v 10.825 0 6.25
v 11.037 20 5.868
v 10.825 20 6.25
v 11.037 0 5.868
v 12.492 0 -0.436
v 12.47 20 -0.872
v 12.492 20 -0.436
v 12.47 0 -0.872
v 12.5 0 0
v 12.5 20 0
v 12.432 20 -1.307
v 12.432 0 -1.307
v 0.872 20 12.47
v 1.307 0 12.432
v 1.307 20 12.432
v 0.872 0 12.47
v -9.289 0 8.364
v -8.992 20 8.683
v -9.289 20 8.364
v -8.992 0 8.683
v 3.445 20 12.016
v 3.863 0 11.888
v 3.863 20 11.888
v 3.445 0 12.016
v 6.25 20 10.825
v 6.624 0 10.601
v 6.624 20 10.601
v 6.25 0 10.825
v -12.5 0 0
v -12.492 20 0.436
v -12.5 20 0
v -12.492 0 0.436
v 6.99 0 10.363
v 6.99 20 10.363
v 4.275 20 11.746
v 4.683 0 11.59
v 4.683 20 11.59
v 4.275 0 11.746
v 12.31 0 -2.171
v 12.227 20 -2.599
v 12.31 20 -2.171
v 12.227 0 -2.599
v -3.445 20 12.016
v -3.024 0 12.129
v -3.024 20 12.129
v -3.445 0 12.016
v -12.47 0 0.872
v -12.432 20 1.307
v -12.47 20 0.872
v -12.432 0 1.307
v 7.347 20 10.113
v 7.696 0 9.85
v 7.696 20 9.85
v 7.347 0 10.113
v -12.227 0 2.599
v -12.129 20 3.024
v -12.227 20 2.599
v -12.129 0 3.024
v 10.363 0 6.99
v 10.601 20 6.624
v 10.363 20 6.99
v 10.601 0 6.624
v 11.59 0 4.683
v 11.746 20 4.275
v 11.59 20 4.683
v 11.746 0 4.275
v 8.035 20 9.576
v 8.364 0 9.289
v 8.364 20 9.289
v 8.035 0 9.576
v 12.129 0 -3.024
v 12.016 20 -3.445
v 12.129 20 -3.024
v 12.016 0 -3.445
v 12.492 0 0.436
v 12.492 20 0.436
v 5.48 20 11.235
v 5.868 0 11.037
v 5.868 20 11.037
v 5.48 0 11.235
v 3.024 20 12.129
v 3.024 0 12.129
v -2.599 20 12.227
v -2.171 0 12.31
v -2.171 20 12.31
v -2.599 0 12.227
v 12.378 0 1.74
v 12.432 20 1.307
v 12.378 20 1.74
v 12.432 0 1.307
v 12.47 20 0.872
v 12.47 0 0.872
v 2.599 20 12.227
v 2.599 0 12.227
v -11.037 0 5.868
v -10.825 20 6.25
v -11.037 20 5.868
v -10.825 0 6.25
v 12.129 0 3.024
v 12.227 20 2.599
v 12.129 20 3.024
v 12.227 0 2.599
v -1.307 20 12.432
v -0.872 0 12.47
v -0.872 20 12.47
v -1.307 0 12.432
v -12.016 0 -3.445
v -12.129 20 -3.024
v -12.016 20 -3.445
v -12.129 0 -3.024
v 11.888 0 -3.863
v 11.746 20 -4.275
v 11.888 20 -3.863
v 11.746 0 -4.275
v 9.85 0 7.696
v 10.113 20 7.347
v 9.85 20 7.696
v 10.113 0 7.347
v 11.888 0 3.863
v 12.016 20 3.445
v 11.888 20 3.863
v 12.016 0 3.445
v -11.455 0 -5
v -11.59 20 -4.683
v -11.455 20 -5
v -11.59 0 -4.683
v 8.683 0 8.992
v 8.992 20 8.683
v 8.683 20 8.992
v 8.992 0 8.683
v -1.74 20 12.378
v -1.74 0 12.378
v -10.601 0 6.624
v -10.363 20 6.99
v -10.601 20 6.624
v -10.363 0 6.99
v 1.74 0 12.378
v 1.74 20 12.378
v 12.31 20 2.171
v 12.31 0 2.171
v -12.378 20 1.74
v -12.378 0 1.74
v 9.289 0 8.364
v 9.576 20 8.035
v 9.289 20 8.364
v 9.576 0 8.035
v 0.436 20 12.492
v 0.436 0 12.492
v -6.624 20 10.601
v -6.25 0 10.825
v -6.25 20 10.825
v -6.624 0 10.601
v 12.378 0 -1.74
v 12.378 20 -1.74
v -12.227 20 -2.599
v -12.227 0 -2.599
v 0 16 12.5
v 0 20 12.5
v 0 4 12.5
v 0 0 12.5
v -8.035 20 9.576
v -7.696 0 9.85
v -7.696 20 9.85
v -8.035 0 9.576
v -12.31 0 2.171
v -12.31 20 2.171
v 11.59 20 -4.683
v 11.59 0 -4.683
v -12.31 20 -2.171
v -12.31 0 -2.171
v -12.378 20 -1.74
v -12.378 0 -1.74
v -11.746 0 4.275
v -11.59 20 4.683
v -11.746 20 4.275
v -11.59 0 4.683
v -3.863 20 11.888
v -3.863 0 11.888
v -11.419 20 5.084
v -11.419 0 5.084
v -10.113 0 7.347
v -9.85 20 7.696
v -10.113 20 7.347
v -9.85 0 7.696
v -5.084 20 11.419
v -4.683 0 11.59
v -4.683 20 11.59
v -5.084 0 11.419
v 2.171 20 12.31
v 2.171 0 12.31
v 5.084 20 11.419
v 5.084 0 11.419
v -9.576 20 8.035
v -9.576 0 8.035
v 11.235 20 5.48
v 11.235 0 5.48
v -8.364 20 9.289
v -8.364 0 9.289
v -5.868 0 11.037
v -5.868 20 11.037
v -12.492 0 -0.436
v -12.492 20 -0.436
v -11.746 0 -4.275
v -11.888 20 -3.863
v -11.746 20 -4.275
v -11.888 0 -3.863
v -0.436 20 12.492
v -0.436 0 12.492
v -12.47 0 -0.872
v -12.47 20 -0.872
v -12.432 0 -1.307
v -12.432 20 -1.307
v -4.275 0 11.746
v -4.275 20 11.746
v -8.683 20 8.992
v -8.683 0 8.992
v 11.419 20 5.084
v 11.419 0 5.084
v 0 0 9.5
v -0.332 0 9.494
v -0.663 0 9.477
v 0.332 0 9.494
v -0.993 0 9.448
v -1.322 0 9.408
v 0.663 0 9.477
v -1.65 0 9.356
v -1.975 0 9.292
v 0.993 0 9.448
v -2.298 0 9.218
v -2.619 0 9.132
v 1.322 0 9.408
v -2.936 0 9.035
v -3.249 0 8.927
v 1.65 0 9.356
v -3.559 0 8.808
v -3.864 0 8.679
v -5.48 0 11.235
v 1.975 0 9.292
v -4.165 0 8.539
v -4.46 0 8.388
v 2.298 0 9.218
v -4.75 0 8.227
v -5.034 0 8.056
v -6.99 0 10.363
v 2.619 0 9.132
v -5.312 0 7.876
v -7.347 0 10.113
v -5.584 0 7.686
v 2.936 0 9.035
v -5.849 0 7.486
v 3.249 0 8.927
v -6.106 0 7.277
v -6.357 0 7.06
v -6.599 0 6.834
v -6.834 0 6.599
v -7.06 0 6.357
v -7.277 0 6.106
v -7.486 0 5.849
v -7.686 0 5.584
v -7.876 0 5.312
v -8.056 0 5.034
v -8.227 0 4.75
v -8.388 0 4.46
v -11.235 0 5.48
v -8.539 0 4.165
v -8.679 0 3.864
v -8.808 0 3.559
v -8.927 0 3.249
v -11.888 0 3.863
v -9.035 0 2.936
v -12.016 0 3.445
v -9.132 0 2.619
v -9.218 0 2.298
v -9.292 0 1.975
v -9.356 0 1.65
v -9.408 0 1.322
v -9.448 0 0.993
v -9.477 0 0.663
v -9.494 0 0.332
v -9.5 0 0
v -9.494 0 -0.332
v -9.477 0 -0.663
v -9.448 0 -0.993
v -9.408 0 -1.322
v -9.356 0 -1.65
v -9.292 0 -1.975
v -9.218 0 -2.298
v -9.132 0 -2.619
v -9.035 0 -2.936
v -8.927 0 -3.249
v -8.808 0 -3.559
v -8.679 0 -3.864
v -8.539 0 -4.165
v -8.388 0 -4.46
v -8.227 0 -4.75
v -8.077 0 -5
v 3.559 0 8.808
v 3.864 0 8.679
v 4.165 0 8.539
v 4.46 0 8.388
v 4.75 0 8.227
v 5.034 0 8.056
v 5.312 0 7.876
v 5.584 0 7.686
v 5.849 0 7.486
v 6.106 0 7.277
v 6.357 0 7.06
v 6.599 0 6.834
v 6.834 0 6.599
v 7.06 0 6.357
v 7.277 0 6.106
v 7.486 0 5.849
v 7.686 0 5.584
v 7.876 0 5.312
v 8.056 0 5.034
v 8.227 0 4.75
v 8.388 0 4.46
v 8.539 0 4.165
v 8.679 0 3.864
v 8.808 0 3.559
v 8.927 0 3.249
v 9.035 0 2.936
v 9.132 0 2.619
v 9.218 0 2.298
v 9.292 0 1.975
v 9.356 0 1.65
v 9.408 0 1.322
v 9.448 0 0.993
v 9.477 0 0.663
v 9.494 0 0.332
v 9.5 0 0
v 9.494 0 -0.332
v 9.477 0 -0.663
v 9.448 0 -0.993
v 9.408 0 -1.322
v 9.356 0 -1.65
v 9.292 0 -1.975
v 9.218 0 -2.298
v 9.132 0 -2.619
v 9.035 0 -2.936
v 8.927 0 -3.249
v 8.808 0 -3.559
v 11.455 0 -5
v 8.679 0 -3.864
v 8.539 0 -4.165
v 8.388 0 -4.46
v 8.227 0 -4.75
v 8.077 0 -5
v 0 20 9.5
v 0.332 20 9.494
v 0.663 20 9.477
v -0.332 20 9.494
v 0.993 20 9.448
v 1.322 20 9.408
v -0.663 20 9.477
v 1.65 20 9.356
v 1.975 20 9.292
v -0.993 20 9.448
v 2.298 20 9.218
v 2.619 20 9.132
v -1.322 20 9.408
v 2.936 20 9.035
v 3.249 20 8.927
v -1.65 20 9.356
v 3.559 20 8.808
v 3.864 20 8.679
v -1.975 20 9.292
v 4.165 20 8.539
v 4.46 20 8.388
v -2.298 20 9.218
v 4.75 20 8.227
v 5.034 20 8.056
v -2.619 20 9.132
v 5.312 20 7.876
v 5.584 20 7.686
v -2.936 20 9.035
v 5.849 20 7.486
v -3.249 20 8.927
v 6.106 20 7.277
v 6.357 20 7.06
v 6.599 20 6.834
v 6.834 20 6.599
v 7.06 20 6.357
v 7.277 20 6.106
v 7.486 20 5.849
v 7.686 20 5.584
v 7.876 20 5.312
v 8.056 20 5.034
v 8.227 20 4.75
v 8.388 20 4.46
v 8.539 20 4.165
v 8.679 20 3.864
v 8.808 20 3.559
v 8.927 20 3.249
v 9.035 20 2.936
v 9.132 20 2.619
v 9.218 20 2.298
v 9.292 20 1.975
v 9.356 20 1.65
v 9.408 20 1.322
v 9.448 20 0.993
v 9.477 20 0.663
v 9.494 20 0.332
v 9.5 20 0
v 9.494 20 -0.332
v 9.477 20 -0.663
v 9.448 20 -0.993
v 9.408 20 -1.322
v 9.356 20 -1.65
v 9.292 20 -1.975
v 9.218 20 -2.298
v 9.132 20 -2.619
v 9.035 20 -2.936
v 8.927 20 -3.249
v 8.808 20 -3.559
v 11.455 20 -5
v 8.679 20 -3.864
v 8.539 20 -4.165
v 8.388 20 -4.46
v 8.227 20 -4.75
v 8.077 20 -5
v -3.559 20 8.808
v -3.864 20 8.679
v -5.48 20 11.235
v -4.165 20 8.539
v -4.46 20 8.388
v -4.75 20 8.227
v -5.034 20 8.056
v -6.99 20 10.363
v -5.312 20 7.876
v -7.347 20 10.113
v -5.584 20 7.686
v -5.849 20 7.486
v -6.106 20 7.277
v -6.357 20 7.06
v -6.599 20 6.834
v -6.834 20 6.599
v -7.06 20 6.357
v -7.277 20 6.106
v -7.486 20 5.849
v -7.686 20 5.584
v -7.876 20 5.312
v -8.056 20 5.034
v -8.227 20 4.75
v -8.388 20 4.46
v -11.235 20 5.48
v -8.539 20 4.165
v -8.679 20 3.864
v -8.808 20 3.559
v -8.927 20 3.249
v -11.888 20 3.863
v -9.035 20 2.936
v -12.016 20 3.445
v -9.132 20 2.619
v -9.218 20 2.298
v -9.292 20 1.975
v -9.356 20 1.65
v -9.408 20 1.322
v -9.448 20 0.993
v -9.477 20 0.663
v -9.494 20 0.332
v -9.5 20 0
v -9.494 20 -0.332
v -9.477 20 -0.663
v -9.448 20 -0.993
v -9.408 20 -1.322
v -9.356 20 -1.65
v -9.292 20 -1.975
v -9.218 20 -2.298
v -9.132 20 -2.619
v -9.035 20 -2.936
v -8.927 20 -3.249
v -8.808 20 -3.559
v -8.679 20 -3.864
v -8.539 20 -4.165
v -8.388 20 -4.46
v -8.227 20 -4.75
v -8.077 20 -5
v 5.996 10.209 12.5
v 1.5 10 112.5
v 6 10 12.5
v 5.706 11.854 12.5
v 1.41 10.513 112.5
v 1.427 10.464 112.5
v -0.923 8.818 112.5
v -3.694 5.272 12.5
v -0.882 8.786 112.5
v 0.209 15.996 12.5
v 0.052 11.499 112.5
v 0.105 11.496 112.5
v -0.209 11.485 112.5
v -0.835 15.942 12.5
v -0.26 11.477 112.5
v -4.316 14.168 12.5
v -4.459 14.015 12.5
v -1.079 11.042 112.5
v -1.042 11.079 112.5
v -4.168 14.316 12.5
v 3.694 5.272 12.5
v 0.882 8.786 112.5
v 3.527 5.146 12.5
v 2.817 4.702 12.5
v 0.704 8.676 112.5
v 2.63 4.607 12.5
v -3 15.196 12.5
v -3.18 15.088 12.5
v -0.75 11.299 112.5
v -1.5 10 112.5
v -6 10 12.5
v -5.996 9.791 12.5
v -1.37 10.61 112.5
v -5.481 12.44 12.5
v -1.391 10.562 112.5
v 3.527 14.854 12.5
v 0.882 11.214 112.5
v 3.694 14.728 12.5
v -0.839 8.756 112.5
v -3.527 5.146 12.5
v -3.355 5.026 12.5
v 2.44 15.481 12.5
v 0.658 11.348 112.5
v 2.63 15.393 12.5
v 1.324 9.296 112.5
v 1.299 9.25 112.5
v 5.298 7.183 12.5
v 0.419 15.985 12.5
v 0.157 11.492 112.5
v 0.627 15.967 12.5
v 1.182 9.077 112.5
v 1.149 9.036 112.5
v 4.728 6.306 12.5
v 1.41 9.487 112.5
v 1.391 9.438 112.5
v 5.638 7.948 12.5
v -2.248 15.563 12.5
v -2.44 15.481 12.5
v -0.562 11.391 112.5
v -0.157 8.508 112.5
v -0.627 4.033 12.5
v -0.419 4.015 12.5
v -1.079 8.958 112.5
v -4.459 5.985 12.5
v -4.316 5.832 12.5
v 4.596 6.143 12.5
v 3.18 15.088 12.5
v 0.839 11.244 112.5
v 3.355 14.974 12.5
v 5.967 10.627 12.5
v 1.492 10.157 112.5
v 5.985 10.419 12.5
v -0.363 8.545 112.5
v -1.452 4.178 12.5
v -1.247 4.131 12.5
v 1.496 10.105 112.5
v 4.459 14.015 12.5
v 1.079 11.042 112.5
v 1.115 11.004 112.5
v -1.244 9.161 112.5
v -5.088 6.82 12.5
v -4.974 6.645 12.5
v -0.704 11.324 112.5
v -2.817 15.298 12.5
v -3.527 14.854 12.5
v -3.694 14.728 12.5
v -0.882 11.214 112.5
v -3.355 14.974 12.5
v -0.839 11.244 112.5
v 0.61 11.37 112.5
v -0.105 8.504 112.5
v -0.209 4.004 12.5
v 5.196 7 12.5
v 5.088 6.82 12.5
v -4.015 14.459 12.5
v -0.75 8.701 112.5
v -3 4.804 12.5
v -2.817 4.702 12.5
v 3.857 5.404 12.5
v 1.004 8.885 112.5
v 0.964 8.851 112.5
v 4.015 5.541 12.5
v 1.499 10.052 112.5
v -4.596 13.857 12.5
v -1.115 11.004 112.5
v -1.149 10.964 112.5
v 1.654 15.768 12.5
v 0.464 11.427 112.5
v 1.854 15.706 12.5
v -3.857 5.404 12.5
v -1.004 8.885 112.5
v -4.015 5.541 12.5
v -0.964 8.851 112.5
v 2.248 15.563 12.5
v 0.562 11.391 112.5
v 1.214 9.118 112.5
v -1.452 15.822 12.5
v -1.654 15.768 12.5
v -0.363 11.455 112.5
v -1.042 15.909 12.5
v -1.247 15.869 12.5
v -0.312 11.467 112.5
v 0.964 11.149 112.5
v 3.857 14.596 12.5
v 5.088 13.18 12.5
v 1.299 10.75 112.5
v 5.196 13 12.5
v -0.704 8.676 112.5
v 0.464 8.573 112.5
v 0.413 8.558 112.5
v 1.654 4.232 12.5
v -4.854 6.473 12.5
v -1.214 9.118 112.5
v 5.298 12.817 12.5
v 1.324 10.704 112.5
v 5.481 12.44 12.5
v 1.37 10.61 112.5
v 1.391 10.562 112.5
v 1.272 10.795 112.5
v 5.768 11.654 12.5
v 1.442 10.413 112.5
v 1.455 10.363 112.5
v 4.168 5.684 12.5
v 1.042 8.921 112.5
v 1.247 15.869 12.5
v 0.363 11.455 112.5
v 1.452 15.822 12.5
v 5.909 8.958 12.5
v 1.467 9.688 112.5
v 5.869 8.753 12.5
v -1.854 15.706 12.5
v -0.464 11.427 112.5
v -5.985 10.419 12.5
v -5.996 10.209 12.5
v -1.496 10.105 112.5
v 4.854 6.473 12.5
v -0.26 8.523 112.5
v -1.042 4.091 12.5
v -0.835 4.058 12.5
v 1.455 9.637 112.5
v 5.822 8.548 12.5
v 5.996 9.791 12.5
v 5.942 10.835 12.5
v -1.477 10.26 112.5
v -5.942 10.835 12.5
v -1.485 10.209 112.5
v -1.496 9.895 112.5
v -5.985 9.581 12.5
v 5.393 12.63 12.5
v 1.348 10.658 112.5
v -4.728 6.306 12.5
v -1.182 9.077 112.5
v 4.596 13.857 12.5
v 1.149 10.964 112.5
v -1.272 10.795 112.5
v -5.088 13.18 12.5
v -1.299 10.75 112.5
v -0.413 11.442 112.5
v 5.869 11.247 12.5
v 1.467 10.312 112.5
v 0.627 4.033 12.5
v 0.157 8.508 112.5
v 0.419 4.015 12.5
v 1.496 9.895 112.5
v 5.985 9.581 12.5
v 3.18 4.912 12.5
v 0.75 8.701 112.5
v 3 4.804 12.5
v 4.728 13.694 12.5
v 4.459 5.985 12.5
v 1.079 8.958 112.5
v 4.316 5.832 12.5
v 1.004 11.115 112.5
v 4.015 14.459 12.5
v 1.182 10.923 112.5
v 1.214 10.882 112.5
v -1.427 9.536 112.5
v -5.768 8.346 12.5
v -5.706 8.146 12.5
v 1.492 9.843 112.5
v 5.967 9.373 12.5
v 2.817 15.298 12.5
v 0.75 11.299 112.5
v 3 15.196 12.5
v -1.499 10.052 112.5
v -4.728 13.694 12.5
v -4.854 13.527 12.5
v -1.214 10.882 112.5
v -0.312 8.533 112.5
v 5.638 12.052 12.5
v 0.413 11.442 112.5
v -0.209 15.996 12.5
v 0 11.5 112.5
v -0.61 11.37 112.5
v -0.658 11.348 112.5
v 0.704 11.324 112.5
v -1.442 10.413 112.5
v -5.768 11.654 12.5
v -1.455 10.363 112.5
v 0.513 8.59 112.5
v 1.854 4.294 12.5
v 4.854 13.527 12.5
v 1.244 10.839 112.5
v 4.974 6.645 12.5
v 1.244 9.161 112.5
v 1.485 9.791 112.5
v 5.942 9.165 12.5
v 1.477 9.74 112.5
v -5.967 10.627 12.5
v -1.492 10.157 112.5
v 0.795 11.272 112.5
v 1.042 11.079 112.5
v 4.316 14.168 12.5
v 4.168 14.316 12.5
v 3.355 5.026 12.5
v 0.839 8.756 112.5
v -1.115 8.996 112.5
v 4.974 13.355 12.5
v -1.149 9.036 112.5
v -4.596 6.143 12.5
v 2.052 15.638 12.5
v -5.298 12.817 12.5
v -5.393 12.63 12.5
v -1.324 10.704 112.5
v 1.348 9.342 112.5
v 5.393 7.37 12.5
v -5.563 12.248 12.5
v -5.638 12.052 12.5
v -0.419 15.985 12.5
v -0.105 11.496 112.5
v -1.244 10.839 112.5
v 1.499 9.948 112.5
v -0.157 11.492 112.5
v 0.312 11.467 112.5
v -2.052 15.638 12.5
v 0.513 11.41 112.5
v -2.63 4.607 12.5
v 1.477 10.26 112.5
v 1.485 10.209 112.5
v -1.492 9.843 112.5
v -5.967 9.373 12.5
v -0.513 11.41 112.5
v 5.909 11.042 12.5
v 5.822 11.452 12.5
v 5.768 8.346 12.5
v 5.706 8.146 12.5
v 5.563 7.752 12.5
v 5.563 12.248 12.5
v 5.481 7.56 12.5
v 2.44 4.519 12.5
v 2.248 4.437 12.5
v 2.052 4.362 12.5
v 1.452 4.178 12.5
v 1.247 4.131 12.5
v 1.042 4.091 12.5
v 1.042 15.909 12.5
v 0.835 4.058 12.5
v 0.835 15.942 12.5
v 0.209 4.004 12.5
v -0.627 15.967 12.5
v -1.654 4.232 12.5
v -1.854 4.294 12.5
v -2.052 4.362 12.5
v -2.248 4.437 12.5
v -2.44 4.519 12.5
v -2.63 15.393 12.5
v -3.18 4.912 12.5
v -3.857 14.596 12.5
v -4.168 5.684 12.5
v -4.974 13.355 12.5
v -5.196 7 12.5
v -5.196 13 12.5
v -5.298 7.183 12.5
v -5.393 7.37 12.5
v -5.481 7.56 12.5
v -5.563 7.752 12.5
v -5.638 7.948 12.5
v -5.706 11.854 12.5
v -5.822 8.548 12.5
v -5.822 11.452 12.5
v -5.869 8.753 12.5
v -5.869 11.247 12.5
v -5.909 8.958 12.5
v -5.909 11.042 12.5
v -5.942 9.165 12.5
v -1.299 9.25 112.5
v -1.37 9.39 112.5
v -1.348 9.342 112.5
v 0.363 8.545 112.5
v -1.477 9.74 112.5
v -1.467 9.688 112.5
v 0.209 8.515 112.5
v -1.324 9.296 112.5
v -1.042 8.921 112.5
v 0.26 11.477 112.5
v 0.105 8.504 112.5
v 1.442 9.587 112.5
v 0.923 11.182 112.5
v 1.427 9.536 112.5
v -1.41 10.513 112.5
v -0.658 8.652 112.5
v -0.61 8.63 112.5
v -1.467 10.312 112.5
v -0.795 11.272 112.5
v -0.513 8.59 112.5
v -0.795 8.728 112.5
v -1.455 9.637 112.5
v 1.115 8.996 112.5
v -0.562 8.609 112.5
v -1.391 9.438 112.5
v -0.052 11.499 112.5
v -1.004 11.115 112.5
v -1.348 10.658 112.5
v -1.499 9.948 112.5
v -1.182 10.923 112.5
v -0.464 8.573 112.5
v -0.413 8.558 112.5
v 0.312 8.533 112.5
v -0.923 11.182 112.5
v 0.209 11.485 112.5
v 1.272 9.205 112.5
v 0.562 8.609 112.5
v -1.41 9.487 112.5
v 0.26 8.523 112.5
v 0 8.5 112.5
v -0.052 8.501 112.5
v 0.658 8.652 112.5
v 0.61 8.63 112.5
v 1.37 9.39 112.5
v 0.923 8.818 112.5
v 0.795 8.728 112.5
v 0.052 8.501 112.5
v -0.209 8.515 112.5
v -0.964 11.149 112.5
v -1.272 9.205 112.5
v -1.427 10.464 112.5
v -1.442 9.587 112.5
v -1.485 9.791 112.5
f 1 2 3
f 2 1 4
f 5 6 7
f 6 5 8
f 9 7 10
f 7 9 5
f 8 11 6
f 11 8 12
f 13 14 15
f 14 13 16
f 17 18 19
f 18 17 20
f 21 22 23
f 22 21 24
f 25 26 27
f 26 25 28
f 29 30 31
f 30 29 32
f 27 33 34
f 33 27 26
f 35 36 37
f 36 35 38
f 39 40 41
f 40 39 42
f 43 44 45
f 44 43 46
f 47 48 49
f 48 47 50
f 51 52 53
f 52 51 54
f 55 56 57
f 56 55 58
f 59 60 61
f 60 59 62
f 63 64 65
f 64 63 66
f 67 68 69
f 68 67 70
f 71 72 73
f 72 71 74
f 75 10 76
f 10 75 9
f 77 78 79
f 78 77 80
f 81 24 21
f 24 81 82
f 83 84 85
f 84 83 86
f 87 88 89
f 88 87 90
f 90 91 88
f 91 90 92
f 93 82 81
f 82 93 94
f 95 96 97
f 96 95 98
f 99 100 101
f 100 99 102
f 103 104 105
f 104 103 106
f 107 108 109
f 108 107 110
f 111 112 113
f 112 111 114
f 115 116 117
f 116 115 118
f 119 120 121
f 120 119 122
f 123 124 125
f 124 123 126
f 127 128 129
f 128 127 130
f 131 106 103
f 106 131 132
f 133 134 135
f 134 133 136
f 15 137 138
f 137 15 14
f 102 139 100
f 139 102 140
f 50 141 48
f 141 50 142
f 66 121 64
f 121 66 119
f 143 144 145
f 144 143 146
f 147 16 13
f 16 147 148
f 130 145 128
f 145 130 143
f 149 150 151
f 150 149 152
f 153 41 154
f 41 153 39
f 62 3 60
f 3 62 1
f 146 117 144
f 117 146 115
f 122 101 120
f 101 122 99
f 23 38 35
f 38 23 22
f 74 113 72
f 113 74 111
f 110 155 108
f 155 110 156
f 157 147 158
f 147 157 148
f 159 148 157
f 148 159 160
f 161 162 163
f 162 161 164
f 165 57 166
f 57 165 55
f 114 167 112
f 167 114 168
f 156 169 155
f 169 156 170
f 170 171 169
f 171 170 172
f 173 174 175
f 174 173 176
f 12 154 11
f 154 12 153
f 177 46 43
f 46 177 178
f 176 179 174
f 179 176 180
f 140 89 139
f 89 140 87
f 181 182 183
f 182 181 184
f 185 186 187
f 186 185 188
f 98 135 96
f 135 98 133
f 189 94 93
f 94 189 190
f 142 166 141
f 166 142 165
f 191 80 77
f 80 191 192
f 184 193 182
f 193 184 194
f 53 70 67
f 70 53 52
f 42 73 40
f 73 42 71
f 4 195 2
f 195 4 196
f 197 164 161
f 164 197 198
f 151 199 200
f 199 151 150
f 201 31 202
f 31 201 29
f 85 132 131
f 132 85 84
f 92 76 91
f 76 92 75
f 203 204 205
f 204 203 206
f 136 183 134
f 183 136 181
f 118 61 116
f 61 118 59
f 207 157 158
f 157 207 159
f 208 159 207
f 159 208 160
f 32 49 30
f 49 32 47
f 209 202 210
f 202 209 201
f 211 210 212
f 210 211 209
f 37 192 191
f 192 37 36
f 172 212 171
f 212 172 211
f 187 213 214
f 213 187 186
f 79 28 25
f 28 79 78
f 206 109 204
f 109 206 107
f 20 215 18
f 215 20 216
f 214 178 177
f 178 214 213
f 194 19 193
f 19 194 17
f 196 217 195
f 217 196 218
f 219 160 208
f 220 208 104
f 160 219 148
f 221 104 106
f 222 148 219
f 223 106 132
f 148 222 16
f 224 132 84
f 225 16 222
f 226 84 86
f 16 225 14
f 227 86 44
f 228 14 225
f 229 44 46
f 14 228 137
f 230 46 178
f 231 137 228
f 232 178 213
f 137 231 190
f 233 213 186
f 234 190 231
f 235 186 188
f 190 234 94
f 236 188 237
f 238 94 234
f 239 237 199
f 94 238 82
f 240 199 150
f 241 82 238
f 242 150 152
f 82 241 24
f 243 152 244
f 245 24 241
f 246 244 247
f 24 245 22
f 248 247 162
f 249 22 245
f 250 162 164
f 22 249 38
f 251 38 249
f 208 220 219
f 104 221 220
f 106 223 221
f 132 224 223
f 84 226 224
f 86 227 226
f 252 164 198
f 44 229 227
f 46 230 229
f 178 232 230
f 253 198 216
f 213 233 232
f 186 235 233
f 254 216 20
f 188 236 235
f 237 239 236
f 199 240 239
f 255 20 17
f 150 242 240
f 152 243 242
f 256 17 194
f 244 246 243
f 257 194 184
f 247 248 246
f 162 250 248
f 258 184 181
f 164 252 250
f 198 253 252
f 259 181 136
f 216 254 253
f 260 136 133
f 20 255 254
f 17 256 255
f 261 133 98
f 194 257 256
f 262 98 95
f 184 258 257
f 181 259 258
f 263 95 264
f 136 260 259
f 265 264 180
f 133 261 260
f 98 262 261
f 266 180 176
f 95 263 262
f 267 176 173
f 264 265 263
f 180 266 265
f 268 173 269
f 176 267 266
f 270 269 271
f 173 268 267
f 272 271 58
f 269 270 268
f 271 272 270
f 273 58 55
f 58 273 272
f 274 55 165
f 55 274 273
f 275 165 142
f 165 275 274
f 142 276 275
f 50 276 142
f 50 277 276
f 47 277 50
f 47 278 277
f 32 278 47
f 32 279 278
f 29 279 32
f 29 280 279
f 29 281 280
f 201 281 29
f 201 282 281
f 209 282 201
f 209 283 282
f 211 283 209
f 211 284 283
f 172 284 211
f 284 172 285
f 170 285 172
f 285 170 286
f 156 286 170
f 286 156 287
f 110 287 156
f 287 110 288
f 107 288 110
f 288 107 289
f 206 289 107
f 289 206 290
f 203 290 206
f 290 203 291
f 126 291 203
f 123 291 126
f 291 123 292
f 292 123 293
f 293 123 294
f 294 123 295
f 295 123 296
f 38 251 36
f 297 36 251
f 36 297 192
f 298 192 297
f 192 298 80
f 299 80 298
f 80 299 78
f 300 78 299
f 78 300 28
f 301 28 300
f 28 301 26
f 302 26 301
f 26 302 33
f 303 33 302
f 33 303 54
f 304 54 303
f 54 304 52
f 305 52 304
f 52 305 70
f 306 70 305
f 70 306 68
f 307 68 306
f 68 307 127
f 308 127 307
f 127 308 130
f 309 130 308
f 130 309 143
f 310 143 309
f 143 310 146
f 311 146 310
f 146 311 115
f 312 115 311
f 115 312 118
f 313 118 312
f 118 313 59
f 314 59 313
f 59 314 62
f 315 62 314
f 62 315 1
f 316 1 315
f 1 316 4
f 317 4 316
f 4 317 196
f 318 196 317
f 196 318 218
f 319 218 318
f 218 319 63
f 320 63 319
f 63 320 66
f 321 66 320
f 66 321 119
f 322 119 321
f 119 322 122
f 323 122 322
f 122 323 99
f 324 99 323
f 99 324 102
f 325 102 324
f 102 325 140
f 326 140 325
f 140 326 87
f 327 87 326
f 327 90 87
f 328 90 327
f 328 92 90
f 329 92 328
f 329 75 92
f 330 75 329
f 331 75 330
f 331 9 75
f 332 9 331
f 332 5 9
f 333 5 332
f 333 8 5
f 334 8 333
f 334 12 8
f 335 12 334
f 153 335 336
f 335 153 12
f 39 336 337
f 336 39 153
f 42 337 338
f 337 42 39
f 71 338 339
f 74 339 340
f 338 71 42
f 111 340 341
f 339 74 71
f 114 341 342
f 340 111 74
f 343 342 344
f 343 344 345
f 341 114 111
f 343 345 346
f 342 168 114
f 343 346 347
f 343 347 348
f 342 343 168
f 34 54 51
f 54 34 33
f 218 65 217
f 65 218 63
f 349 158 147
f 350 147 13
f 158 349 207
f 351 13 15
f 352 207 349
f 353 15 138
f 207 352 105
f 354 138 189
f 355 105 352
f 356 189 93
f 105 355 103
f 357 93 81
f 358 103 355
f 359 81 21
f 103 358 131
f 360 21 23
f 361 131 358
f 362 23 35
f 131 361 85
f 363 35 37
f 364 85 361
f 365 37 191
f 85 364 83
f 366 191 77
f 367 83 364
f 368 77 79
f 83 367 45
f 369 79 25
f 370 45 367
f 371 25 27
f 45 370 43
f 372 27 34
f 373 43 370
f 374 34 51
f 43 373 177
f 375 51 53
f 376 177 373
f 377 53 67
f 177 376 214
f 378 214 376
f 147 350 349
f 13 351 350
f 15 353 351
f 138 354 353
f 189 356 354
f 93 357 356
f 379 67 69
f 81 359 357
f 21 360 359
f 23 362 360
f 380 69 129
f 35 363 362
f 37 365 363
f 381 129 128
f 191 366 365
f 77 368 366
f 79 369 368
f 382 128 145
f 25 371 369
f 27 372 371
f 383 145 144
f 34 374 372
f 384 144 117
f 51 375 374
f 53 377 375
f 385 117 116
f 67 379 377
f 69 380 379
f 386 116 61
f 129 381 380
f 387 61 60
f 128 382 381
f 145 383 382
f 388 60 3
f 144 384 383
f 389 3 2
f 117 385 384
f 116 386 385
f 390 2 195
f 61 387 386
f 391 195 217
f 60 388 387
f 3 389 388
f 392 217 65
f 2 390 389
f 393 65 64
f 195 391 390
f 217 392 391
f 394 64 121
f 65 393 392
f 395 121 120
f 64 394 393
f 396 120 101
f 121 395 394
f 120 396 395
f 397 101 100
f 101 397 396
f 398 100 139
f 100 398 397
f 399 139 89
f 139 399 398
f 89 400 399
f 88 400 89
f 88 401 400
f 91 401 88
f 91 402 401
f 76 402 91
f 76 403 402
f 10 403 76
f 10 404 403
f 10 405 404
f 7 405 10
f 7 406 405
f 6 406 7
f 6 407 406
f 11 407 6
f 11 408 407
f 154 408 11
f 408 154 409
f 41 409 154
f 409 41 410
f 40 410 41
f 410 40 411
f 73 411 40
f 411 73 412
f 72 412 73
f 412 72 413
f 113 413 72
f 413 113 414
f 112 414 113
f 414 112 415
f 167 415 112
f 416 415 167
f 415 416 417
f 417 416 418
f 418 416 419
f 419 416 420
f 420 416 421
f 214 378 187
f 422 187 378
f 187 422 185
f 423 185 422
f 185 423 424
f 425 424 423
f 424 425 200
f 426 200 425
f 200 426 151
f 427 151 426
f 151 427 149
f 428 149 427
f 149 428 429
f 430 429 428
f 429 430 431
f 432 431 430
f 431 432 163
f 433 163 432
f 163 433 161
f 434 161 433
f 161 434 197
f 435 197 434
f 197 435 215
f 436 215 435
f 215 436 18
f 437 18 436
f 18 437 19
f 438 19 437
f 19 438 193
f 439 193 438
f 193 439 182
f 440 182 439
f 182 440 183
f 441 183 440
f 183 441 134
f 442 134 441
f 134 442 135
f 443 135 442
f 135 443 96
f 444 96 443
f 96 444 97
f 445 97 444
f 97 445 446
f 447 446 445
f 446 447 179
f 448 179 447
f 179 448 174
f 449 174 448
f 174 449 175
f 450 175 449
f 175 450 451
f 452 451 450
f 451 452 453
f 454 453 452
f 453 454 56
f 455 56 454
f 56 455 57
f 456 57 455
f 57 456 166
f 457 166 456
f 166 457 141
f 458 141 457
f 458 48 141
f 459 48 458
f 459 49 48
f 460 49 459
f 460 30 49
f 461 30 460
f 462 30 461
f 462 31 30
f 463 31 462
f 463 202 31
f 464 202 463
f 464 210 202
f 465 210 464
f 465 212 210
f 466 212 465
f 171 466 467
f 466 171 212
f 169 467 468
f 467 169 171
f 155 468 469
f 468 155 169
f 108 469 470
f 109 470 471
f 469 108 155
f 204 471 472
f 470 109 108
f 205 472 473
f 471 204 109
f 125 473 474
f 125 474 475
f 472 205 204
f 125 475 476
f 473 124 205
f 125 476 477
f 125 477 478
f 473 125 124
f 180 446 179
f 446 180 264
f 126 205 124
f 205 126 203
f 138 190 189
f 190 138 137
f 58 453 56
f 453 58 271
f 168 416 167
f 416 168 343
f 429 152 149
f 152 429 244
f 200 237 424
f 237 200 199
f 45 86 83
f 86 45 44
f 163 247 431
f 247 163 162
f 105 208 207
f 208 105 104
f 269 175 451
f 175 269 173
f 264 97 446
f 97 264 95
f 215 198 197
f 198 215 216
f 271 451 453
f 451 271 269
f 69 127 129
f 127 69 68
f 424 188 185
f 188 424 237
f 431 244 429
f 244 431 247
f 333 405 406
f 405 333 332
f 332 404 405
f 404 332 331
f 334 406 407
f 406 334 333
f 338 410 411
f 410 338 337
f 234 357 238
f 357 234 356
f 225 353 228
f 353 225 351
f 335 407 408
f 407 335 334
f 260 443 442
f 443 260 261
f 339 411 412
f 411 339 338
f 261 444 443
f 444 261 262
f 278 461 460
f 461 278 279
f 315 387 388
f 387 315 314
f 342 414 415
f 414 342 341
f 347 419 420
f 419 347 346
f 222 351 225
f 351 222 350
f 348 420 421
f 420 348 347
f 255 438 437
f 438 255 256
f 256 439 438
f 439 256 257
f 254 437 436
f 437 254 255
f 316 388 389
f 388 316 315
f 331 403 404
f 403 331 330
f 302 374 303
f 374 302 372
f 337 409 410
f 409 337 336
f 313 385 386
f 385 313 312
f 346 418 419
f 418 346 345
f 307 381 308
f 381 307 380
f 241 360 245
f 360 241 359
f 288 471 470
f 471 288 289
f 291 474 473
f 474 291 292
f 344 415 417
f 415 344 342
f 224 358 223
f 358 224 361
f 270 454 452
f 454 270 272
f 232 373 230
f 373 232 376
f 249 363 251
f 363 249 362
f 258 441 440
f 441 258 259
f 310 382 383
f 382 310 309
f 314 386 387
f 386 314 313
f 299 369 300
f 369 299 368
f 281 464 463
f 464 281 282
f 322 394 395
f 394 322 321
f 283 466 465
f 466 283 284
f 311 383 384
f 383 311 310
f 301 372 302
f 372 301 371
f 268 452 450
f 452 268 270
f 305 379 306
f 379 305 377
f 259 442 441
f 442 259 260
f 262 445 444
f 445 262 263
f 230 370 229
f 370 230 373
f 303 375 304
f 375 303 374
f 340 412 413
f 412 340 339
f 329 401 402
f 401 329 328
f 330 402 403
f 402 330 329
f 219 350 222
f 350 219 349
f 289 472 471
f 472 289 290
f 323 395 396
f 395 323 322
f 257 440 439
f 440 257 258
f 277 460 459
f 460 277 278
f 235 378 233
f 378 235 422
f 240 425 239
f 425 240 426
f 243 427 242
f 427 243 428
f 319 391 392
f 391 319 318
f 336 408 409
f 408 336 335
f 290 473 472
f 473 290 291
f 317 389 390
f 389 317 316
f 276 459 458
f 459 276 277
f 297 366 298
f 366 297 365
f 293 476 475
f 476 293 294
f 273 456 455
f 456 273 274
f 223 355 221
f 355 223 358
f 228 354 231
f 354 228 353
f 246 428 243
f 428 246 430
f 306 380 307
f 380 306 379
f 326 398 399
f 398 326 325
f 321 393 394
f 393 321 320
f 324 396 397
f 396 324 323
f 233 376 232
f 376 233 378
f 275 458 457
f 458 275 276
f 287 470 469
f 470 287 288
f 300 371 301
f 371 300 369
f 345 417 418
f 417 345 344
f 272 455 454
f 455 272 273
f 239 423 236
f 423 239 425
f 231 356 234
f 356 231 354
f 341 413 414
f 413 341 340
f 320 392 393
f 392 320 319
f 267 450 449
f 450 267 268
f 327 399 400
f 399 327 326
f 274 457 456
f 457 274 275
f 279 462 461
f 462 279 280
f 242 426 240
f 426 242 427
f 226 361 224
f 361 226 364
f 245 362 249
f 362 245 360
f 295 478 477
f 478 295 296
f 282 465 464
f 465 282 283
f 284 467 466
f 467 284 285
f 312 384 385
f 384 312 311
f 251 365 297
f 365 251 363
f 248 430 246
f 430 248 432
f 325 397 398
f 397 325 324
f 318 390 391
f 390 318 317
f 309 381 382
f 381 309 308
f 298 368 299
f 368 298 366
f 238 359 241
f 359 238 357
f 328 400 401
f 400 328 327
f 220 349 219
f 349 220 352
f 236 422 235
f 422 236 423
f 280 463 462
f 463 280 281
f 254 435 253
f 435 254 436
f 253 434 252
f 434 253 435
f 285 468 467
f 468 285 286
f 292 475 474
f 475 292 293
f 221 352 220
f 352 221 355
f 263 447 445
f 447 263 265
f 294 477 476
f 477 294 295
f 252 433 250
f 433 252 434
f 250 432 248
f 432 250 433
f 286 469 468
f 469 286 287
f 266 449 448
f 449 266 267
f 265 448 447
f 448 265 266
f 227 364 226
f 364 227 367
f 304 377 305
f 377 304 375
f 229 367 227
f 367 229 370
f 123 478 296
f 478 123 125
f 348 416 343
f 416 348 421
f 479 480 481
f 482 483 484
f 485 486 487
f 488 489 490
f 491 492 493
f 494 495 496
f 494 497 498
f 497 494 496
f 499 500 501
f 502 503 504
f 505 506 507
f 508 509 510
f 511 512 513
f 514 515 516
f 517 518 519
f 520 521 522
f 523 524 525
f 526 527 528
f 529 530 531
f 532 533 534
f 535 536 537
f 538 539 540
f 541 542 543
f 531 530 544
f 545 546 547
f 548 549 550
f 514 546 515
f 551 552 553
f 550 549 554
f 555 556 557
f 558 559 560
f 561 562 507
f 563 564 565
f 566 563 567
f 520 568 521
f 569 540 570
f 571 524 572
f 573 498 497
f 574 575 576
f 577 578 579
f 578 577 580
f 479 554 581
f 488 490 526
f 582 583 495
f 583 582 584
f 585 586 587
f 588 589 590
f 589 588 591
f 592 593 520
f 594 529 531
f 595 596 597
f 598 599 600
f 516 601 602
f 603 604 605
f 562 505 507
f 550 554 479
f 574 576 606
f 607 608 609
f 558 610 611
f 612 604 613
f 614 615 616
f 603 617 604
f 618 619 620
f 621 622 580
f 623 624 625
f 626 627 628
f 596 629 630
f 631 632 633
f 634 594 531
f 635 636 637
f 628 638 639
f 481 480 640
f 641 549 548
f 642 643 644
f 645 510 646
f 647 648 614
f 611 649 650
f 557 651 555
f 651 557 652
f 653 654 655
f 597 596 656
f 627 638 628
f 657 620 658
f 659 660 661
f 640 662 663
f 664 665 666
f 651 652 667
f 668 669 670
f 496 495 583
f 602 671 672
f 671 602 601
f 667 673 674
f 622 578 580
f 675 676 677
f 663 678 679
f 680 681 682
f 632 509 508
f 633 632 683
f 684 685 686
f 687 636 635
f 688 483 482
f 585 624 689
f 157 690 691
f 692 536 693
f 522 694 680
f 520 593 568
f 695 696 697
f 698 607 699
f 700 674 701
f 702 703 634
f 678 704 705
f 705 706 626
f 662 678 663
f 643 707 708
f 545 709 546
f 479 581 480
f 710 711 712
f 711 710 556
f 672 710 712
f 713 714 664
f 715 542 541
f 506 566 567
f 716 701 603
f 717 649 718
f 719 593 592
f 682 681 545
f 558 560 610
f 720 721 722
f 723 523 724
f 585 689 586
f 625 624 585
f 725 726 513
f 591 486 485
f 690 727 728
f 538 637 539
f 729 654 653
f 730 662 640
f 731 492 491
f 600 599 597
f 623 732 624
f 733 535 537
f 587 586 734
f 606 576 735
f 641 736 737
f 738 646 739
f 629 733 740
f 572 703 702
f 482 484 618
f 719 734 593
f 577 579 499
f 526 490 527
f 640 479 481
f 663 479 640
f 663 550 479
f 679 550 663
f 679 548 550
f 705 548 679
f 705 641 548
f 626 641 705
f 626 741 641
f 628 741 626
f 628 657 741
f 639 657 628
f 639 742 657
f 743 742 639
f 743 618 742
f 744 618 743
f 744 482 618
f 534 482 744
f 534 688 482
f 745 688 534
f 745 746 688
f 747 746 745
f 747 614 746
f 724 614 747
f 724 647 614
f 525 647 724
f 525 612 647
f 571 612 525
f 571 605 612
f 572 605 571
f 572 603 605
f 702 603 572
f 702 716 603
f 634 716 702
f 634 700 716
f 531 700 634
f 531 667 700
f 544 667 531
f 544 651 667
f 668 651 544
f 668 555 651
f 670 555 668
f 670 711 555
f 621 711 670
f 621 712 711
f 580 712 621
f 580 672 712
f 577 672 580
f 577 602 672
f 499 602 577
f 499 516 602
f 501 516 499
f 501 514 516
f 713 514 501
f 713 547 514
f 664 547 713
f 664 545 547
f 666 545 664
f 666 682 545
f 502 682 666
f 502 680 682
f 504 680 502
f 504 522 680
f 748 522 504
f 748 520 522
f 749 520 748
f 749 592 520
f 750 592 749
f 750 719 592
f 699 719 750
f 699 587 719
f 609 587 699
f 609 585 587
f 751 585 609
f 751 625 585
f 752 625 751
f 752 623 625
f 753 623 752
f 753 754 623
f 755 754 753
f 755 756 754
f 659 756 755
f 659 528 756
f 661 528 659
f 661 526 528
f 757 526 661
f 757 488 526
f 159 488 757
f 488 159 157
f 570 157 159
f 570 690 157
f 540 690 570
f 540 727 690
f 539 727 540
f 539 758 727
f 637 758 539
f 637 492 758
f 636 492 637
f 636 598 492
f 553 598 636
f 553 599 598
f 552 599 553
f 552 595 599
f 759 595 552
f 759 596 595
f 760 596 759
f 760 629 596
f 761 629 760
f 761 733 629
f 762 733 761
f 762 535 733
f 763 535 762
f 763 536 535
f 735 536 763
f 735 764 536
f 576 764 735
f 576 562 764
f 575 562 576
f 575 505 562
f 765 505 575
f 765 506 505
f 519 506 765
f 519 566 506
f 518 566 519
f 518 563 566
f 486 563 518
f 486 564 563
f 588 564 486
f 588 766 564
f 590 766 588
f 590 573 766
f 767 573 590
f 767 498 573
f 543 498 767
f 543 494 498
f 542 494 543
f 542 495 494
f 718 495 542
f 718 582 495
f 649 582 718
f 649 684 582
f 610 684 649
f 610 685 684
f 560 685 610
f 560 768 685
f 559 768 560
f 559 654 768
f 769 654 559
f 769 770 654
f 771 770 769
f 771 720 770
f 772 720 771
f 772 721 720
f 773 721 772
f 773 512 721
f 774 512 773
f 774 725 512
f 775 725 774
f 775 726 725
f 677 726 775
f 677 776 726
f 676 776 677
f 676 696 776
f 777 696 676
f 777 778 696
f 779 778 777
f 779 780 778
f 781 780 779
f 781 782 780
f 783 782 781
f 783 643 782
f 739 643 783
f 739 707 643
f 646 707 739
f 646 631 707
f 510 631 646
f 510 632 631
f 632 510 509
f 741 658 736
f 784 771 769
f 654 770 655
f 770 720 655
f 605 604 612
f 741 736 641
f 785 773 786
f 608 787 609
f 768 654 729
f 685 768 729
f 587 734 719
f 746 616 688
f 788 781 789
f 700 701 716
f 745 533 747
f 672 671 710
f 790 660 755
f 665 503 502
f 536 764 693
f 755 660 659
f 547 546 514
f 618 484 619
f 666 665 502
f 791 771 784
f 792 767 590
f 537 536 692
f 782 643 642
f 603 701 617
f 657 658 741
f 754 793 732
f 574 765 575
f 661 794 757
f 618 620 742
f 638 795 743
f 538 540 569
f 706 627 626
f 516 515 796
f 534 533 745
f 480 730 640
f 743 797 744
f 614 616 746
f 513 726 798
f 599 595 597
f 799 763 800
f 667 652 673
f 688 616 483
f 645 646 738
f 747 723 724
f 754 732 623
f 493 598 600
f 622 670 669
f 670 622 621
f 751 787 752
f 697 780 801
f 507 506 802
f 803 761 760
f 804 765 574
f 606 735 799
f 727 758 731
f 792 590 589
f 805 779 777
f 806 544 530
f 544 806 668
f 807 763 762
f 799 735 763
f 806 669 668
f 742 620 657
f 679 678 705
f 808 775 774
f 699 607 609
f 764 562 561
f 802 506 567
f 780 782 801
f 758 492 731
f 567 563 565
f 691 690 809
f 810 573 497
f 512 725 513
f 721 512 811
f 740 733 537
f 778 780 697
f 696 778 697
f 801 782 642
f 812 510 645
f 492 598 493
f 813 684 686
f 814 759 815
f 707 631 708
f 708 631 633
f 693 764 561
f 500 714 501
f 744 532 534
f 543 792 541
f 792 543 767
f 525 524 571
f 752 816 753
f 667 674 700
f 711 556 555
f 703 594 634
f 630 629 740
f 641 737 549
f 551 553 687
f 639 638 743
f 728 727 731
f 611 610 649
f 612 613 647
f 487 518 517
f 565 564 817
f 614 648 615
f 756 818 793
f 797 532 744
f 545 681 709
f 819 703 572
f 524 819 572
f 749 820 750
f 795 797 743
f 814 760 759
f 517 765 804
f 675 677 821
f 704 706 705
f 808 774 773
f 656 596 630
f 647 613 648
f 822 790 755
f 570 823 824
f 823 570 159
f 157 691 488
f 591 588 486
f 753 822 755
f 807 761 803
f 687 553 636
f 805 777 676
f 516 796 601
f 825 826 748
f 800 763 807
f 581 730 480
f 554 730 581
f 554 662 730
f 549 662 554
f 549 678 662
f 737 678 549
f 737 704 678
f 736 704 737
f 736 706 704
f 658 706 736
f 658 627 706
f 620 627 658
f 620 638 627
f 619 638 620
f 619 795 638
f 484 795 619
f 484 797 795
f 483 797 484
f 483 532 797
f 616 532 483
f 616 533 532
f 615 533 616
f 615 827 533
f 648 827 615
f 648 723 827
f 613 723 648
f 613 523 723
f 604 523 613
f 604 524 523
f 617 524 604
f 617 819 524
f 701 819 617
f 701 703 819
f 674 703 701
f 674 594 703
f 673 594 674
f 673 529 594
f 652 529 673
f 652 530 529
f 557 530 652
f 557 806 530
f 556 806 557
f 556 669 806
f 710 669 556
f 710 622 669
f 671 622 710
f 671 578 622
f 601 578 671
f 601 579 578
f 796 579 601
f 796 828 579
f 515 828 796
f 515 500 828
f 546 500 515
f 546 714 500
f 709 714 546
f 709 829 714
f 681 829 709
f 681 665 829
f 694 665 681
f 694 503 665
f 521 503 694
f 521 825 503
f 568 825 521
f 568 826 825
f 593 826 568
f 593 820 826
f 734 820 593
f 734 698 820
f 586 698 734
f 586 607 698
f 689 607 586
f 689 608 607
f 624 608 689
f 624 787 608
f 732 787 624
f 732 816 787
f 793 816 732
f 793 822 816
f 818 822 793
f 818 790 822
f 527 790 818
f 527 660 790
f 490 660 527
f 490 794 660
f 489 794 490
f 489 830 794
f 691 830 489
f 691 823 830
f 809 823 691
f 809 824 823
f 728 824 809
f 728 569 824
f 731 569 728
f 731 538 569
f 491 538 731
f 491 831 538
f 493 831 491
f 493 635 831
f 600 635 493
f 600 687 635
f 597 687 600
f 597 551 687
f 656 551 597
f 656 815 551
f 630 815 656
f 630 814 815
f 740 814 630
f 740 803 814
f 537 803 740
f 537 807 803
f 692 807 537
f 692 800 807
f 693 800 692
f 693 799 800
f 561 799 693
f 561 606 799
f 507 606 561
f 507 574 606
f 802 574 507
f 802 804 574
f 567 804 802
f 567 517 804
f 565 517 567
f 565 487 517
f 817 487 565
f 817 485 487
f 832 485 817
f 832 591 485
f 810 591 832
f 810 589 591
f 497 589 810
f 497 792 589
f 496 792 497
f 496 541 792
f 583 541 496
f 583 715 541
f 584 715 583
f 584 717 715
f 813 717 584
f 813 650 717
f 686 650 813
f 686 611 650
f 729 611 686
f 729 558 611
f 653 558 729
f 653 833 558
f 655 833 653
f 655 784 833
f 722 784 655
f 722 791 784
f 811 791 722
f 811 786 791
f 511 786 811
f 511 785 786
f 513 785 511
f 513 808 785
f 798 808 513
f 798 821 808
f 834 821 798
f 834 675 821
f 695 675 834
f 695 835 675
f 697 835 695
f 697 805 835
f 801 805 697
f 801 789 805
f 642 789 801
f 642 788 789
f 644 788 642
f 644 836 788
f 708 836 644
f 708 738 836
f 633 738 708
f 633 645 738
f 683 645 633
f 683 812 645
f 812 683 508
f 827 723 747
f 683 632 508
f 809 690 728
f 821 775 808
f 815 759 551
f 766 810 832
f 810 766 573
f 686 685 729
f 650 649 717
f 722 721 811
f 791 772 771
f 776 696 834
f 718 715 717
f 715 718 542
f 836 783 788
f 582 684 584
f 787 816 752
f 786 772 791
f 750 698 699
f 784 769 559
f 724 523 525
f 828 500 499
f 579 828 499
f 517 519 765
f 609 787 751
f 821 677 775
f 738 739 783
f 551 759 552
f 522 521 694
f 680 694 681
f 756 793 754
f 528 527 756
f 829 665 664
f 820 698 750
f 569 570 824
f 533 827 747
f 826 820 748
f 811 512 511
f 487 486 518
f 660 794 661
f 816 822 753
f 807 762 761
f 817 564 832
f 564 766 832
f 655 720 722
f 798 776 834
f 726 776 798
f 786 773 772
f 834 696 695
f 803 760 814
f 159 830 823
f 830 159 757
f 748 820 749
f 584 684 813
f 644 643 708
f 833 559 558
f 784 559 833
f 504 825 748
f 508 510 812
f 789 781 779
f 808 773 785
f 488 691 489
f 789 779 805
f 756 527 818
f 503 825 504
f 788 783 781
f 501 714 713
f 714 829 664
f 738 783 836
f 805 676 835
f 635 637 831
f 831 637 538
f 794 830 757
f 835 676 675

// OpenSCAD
$fn = 180;

tube_diameter = 19;
tube_holder_height = 20;
tube_holder_thickness = 3;
tube_holder_y_offset = 5;

stick_length = 100;
stick_diameter = 12;

rotate([-90, 0, 0]) difference() {
    cylinder(d=tube_diameter + 2 * tube_holder_thickness, tube_holder_height);
    cylinder(d=tube_diameter, tube_holder_height);
    translate([-(tube_diameter + 2 * tube_holder_thickness) / 2, tube_holder_y_offset, 0]) cube([tube_diameter + 2 * tube_holder_thickness, tube_diameter + 2 * tube_holder_thickness, tube_holder_height]);
}

translate([0, tube_holder_height / 2, (tube_diameter + 2 * tube_holder_thickness) / 2]) cylinder(d1=stick_diameter, d2=3, stick_length);
    
